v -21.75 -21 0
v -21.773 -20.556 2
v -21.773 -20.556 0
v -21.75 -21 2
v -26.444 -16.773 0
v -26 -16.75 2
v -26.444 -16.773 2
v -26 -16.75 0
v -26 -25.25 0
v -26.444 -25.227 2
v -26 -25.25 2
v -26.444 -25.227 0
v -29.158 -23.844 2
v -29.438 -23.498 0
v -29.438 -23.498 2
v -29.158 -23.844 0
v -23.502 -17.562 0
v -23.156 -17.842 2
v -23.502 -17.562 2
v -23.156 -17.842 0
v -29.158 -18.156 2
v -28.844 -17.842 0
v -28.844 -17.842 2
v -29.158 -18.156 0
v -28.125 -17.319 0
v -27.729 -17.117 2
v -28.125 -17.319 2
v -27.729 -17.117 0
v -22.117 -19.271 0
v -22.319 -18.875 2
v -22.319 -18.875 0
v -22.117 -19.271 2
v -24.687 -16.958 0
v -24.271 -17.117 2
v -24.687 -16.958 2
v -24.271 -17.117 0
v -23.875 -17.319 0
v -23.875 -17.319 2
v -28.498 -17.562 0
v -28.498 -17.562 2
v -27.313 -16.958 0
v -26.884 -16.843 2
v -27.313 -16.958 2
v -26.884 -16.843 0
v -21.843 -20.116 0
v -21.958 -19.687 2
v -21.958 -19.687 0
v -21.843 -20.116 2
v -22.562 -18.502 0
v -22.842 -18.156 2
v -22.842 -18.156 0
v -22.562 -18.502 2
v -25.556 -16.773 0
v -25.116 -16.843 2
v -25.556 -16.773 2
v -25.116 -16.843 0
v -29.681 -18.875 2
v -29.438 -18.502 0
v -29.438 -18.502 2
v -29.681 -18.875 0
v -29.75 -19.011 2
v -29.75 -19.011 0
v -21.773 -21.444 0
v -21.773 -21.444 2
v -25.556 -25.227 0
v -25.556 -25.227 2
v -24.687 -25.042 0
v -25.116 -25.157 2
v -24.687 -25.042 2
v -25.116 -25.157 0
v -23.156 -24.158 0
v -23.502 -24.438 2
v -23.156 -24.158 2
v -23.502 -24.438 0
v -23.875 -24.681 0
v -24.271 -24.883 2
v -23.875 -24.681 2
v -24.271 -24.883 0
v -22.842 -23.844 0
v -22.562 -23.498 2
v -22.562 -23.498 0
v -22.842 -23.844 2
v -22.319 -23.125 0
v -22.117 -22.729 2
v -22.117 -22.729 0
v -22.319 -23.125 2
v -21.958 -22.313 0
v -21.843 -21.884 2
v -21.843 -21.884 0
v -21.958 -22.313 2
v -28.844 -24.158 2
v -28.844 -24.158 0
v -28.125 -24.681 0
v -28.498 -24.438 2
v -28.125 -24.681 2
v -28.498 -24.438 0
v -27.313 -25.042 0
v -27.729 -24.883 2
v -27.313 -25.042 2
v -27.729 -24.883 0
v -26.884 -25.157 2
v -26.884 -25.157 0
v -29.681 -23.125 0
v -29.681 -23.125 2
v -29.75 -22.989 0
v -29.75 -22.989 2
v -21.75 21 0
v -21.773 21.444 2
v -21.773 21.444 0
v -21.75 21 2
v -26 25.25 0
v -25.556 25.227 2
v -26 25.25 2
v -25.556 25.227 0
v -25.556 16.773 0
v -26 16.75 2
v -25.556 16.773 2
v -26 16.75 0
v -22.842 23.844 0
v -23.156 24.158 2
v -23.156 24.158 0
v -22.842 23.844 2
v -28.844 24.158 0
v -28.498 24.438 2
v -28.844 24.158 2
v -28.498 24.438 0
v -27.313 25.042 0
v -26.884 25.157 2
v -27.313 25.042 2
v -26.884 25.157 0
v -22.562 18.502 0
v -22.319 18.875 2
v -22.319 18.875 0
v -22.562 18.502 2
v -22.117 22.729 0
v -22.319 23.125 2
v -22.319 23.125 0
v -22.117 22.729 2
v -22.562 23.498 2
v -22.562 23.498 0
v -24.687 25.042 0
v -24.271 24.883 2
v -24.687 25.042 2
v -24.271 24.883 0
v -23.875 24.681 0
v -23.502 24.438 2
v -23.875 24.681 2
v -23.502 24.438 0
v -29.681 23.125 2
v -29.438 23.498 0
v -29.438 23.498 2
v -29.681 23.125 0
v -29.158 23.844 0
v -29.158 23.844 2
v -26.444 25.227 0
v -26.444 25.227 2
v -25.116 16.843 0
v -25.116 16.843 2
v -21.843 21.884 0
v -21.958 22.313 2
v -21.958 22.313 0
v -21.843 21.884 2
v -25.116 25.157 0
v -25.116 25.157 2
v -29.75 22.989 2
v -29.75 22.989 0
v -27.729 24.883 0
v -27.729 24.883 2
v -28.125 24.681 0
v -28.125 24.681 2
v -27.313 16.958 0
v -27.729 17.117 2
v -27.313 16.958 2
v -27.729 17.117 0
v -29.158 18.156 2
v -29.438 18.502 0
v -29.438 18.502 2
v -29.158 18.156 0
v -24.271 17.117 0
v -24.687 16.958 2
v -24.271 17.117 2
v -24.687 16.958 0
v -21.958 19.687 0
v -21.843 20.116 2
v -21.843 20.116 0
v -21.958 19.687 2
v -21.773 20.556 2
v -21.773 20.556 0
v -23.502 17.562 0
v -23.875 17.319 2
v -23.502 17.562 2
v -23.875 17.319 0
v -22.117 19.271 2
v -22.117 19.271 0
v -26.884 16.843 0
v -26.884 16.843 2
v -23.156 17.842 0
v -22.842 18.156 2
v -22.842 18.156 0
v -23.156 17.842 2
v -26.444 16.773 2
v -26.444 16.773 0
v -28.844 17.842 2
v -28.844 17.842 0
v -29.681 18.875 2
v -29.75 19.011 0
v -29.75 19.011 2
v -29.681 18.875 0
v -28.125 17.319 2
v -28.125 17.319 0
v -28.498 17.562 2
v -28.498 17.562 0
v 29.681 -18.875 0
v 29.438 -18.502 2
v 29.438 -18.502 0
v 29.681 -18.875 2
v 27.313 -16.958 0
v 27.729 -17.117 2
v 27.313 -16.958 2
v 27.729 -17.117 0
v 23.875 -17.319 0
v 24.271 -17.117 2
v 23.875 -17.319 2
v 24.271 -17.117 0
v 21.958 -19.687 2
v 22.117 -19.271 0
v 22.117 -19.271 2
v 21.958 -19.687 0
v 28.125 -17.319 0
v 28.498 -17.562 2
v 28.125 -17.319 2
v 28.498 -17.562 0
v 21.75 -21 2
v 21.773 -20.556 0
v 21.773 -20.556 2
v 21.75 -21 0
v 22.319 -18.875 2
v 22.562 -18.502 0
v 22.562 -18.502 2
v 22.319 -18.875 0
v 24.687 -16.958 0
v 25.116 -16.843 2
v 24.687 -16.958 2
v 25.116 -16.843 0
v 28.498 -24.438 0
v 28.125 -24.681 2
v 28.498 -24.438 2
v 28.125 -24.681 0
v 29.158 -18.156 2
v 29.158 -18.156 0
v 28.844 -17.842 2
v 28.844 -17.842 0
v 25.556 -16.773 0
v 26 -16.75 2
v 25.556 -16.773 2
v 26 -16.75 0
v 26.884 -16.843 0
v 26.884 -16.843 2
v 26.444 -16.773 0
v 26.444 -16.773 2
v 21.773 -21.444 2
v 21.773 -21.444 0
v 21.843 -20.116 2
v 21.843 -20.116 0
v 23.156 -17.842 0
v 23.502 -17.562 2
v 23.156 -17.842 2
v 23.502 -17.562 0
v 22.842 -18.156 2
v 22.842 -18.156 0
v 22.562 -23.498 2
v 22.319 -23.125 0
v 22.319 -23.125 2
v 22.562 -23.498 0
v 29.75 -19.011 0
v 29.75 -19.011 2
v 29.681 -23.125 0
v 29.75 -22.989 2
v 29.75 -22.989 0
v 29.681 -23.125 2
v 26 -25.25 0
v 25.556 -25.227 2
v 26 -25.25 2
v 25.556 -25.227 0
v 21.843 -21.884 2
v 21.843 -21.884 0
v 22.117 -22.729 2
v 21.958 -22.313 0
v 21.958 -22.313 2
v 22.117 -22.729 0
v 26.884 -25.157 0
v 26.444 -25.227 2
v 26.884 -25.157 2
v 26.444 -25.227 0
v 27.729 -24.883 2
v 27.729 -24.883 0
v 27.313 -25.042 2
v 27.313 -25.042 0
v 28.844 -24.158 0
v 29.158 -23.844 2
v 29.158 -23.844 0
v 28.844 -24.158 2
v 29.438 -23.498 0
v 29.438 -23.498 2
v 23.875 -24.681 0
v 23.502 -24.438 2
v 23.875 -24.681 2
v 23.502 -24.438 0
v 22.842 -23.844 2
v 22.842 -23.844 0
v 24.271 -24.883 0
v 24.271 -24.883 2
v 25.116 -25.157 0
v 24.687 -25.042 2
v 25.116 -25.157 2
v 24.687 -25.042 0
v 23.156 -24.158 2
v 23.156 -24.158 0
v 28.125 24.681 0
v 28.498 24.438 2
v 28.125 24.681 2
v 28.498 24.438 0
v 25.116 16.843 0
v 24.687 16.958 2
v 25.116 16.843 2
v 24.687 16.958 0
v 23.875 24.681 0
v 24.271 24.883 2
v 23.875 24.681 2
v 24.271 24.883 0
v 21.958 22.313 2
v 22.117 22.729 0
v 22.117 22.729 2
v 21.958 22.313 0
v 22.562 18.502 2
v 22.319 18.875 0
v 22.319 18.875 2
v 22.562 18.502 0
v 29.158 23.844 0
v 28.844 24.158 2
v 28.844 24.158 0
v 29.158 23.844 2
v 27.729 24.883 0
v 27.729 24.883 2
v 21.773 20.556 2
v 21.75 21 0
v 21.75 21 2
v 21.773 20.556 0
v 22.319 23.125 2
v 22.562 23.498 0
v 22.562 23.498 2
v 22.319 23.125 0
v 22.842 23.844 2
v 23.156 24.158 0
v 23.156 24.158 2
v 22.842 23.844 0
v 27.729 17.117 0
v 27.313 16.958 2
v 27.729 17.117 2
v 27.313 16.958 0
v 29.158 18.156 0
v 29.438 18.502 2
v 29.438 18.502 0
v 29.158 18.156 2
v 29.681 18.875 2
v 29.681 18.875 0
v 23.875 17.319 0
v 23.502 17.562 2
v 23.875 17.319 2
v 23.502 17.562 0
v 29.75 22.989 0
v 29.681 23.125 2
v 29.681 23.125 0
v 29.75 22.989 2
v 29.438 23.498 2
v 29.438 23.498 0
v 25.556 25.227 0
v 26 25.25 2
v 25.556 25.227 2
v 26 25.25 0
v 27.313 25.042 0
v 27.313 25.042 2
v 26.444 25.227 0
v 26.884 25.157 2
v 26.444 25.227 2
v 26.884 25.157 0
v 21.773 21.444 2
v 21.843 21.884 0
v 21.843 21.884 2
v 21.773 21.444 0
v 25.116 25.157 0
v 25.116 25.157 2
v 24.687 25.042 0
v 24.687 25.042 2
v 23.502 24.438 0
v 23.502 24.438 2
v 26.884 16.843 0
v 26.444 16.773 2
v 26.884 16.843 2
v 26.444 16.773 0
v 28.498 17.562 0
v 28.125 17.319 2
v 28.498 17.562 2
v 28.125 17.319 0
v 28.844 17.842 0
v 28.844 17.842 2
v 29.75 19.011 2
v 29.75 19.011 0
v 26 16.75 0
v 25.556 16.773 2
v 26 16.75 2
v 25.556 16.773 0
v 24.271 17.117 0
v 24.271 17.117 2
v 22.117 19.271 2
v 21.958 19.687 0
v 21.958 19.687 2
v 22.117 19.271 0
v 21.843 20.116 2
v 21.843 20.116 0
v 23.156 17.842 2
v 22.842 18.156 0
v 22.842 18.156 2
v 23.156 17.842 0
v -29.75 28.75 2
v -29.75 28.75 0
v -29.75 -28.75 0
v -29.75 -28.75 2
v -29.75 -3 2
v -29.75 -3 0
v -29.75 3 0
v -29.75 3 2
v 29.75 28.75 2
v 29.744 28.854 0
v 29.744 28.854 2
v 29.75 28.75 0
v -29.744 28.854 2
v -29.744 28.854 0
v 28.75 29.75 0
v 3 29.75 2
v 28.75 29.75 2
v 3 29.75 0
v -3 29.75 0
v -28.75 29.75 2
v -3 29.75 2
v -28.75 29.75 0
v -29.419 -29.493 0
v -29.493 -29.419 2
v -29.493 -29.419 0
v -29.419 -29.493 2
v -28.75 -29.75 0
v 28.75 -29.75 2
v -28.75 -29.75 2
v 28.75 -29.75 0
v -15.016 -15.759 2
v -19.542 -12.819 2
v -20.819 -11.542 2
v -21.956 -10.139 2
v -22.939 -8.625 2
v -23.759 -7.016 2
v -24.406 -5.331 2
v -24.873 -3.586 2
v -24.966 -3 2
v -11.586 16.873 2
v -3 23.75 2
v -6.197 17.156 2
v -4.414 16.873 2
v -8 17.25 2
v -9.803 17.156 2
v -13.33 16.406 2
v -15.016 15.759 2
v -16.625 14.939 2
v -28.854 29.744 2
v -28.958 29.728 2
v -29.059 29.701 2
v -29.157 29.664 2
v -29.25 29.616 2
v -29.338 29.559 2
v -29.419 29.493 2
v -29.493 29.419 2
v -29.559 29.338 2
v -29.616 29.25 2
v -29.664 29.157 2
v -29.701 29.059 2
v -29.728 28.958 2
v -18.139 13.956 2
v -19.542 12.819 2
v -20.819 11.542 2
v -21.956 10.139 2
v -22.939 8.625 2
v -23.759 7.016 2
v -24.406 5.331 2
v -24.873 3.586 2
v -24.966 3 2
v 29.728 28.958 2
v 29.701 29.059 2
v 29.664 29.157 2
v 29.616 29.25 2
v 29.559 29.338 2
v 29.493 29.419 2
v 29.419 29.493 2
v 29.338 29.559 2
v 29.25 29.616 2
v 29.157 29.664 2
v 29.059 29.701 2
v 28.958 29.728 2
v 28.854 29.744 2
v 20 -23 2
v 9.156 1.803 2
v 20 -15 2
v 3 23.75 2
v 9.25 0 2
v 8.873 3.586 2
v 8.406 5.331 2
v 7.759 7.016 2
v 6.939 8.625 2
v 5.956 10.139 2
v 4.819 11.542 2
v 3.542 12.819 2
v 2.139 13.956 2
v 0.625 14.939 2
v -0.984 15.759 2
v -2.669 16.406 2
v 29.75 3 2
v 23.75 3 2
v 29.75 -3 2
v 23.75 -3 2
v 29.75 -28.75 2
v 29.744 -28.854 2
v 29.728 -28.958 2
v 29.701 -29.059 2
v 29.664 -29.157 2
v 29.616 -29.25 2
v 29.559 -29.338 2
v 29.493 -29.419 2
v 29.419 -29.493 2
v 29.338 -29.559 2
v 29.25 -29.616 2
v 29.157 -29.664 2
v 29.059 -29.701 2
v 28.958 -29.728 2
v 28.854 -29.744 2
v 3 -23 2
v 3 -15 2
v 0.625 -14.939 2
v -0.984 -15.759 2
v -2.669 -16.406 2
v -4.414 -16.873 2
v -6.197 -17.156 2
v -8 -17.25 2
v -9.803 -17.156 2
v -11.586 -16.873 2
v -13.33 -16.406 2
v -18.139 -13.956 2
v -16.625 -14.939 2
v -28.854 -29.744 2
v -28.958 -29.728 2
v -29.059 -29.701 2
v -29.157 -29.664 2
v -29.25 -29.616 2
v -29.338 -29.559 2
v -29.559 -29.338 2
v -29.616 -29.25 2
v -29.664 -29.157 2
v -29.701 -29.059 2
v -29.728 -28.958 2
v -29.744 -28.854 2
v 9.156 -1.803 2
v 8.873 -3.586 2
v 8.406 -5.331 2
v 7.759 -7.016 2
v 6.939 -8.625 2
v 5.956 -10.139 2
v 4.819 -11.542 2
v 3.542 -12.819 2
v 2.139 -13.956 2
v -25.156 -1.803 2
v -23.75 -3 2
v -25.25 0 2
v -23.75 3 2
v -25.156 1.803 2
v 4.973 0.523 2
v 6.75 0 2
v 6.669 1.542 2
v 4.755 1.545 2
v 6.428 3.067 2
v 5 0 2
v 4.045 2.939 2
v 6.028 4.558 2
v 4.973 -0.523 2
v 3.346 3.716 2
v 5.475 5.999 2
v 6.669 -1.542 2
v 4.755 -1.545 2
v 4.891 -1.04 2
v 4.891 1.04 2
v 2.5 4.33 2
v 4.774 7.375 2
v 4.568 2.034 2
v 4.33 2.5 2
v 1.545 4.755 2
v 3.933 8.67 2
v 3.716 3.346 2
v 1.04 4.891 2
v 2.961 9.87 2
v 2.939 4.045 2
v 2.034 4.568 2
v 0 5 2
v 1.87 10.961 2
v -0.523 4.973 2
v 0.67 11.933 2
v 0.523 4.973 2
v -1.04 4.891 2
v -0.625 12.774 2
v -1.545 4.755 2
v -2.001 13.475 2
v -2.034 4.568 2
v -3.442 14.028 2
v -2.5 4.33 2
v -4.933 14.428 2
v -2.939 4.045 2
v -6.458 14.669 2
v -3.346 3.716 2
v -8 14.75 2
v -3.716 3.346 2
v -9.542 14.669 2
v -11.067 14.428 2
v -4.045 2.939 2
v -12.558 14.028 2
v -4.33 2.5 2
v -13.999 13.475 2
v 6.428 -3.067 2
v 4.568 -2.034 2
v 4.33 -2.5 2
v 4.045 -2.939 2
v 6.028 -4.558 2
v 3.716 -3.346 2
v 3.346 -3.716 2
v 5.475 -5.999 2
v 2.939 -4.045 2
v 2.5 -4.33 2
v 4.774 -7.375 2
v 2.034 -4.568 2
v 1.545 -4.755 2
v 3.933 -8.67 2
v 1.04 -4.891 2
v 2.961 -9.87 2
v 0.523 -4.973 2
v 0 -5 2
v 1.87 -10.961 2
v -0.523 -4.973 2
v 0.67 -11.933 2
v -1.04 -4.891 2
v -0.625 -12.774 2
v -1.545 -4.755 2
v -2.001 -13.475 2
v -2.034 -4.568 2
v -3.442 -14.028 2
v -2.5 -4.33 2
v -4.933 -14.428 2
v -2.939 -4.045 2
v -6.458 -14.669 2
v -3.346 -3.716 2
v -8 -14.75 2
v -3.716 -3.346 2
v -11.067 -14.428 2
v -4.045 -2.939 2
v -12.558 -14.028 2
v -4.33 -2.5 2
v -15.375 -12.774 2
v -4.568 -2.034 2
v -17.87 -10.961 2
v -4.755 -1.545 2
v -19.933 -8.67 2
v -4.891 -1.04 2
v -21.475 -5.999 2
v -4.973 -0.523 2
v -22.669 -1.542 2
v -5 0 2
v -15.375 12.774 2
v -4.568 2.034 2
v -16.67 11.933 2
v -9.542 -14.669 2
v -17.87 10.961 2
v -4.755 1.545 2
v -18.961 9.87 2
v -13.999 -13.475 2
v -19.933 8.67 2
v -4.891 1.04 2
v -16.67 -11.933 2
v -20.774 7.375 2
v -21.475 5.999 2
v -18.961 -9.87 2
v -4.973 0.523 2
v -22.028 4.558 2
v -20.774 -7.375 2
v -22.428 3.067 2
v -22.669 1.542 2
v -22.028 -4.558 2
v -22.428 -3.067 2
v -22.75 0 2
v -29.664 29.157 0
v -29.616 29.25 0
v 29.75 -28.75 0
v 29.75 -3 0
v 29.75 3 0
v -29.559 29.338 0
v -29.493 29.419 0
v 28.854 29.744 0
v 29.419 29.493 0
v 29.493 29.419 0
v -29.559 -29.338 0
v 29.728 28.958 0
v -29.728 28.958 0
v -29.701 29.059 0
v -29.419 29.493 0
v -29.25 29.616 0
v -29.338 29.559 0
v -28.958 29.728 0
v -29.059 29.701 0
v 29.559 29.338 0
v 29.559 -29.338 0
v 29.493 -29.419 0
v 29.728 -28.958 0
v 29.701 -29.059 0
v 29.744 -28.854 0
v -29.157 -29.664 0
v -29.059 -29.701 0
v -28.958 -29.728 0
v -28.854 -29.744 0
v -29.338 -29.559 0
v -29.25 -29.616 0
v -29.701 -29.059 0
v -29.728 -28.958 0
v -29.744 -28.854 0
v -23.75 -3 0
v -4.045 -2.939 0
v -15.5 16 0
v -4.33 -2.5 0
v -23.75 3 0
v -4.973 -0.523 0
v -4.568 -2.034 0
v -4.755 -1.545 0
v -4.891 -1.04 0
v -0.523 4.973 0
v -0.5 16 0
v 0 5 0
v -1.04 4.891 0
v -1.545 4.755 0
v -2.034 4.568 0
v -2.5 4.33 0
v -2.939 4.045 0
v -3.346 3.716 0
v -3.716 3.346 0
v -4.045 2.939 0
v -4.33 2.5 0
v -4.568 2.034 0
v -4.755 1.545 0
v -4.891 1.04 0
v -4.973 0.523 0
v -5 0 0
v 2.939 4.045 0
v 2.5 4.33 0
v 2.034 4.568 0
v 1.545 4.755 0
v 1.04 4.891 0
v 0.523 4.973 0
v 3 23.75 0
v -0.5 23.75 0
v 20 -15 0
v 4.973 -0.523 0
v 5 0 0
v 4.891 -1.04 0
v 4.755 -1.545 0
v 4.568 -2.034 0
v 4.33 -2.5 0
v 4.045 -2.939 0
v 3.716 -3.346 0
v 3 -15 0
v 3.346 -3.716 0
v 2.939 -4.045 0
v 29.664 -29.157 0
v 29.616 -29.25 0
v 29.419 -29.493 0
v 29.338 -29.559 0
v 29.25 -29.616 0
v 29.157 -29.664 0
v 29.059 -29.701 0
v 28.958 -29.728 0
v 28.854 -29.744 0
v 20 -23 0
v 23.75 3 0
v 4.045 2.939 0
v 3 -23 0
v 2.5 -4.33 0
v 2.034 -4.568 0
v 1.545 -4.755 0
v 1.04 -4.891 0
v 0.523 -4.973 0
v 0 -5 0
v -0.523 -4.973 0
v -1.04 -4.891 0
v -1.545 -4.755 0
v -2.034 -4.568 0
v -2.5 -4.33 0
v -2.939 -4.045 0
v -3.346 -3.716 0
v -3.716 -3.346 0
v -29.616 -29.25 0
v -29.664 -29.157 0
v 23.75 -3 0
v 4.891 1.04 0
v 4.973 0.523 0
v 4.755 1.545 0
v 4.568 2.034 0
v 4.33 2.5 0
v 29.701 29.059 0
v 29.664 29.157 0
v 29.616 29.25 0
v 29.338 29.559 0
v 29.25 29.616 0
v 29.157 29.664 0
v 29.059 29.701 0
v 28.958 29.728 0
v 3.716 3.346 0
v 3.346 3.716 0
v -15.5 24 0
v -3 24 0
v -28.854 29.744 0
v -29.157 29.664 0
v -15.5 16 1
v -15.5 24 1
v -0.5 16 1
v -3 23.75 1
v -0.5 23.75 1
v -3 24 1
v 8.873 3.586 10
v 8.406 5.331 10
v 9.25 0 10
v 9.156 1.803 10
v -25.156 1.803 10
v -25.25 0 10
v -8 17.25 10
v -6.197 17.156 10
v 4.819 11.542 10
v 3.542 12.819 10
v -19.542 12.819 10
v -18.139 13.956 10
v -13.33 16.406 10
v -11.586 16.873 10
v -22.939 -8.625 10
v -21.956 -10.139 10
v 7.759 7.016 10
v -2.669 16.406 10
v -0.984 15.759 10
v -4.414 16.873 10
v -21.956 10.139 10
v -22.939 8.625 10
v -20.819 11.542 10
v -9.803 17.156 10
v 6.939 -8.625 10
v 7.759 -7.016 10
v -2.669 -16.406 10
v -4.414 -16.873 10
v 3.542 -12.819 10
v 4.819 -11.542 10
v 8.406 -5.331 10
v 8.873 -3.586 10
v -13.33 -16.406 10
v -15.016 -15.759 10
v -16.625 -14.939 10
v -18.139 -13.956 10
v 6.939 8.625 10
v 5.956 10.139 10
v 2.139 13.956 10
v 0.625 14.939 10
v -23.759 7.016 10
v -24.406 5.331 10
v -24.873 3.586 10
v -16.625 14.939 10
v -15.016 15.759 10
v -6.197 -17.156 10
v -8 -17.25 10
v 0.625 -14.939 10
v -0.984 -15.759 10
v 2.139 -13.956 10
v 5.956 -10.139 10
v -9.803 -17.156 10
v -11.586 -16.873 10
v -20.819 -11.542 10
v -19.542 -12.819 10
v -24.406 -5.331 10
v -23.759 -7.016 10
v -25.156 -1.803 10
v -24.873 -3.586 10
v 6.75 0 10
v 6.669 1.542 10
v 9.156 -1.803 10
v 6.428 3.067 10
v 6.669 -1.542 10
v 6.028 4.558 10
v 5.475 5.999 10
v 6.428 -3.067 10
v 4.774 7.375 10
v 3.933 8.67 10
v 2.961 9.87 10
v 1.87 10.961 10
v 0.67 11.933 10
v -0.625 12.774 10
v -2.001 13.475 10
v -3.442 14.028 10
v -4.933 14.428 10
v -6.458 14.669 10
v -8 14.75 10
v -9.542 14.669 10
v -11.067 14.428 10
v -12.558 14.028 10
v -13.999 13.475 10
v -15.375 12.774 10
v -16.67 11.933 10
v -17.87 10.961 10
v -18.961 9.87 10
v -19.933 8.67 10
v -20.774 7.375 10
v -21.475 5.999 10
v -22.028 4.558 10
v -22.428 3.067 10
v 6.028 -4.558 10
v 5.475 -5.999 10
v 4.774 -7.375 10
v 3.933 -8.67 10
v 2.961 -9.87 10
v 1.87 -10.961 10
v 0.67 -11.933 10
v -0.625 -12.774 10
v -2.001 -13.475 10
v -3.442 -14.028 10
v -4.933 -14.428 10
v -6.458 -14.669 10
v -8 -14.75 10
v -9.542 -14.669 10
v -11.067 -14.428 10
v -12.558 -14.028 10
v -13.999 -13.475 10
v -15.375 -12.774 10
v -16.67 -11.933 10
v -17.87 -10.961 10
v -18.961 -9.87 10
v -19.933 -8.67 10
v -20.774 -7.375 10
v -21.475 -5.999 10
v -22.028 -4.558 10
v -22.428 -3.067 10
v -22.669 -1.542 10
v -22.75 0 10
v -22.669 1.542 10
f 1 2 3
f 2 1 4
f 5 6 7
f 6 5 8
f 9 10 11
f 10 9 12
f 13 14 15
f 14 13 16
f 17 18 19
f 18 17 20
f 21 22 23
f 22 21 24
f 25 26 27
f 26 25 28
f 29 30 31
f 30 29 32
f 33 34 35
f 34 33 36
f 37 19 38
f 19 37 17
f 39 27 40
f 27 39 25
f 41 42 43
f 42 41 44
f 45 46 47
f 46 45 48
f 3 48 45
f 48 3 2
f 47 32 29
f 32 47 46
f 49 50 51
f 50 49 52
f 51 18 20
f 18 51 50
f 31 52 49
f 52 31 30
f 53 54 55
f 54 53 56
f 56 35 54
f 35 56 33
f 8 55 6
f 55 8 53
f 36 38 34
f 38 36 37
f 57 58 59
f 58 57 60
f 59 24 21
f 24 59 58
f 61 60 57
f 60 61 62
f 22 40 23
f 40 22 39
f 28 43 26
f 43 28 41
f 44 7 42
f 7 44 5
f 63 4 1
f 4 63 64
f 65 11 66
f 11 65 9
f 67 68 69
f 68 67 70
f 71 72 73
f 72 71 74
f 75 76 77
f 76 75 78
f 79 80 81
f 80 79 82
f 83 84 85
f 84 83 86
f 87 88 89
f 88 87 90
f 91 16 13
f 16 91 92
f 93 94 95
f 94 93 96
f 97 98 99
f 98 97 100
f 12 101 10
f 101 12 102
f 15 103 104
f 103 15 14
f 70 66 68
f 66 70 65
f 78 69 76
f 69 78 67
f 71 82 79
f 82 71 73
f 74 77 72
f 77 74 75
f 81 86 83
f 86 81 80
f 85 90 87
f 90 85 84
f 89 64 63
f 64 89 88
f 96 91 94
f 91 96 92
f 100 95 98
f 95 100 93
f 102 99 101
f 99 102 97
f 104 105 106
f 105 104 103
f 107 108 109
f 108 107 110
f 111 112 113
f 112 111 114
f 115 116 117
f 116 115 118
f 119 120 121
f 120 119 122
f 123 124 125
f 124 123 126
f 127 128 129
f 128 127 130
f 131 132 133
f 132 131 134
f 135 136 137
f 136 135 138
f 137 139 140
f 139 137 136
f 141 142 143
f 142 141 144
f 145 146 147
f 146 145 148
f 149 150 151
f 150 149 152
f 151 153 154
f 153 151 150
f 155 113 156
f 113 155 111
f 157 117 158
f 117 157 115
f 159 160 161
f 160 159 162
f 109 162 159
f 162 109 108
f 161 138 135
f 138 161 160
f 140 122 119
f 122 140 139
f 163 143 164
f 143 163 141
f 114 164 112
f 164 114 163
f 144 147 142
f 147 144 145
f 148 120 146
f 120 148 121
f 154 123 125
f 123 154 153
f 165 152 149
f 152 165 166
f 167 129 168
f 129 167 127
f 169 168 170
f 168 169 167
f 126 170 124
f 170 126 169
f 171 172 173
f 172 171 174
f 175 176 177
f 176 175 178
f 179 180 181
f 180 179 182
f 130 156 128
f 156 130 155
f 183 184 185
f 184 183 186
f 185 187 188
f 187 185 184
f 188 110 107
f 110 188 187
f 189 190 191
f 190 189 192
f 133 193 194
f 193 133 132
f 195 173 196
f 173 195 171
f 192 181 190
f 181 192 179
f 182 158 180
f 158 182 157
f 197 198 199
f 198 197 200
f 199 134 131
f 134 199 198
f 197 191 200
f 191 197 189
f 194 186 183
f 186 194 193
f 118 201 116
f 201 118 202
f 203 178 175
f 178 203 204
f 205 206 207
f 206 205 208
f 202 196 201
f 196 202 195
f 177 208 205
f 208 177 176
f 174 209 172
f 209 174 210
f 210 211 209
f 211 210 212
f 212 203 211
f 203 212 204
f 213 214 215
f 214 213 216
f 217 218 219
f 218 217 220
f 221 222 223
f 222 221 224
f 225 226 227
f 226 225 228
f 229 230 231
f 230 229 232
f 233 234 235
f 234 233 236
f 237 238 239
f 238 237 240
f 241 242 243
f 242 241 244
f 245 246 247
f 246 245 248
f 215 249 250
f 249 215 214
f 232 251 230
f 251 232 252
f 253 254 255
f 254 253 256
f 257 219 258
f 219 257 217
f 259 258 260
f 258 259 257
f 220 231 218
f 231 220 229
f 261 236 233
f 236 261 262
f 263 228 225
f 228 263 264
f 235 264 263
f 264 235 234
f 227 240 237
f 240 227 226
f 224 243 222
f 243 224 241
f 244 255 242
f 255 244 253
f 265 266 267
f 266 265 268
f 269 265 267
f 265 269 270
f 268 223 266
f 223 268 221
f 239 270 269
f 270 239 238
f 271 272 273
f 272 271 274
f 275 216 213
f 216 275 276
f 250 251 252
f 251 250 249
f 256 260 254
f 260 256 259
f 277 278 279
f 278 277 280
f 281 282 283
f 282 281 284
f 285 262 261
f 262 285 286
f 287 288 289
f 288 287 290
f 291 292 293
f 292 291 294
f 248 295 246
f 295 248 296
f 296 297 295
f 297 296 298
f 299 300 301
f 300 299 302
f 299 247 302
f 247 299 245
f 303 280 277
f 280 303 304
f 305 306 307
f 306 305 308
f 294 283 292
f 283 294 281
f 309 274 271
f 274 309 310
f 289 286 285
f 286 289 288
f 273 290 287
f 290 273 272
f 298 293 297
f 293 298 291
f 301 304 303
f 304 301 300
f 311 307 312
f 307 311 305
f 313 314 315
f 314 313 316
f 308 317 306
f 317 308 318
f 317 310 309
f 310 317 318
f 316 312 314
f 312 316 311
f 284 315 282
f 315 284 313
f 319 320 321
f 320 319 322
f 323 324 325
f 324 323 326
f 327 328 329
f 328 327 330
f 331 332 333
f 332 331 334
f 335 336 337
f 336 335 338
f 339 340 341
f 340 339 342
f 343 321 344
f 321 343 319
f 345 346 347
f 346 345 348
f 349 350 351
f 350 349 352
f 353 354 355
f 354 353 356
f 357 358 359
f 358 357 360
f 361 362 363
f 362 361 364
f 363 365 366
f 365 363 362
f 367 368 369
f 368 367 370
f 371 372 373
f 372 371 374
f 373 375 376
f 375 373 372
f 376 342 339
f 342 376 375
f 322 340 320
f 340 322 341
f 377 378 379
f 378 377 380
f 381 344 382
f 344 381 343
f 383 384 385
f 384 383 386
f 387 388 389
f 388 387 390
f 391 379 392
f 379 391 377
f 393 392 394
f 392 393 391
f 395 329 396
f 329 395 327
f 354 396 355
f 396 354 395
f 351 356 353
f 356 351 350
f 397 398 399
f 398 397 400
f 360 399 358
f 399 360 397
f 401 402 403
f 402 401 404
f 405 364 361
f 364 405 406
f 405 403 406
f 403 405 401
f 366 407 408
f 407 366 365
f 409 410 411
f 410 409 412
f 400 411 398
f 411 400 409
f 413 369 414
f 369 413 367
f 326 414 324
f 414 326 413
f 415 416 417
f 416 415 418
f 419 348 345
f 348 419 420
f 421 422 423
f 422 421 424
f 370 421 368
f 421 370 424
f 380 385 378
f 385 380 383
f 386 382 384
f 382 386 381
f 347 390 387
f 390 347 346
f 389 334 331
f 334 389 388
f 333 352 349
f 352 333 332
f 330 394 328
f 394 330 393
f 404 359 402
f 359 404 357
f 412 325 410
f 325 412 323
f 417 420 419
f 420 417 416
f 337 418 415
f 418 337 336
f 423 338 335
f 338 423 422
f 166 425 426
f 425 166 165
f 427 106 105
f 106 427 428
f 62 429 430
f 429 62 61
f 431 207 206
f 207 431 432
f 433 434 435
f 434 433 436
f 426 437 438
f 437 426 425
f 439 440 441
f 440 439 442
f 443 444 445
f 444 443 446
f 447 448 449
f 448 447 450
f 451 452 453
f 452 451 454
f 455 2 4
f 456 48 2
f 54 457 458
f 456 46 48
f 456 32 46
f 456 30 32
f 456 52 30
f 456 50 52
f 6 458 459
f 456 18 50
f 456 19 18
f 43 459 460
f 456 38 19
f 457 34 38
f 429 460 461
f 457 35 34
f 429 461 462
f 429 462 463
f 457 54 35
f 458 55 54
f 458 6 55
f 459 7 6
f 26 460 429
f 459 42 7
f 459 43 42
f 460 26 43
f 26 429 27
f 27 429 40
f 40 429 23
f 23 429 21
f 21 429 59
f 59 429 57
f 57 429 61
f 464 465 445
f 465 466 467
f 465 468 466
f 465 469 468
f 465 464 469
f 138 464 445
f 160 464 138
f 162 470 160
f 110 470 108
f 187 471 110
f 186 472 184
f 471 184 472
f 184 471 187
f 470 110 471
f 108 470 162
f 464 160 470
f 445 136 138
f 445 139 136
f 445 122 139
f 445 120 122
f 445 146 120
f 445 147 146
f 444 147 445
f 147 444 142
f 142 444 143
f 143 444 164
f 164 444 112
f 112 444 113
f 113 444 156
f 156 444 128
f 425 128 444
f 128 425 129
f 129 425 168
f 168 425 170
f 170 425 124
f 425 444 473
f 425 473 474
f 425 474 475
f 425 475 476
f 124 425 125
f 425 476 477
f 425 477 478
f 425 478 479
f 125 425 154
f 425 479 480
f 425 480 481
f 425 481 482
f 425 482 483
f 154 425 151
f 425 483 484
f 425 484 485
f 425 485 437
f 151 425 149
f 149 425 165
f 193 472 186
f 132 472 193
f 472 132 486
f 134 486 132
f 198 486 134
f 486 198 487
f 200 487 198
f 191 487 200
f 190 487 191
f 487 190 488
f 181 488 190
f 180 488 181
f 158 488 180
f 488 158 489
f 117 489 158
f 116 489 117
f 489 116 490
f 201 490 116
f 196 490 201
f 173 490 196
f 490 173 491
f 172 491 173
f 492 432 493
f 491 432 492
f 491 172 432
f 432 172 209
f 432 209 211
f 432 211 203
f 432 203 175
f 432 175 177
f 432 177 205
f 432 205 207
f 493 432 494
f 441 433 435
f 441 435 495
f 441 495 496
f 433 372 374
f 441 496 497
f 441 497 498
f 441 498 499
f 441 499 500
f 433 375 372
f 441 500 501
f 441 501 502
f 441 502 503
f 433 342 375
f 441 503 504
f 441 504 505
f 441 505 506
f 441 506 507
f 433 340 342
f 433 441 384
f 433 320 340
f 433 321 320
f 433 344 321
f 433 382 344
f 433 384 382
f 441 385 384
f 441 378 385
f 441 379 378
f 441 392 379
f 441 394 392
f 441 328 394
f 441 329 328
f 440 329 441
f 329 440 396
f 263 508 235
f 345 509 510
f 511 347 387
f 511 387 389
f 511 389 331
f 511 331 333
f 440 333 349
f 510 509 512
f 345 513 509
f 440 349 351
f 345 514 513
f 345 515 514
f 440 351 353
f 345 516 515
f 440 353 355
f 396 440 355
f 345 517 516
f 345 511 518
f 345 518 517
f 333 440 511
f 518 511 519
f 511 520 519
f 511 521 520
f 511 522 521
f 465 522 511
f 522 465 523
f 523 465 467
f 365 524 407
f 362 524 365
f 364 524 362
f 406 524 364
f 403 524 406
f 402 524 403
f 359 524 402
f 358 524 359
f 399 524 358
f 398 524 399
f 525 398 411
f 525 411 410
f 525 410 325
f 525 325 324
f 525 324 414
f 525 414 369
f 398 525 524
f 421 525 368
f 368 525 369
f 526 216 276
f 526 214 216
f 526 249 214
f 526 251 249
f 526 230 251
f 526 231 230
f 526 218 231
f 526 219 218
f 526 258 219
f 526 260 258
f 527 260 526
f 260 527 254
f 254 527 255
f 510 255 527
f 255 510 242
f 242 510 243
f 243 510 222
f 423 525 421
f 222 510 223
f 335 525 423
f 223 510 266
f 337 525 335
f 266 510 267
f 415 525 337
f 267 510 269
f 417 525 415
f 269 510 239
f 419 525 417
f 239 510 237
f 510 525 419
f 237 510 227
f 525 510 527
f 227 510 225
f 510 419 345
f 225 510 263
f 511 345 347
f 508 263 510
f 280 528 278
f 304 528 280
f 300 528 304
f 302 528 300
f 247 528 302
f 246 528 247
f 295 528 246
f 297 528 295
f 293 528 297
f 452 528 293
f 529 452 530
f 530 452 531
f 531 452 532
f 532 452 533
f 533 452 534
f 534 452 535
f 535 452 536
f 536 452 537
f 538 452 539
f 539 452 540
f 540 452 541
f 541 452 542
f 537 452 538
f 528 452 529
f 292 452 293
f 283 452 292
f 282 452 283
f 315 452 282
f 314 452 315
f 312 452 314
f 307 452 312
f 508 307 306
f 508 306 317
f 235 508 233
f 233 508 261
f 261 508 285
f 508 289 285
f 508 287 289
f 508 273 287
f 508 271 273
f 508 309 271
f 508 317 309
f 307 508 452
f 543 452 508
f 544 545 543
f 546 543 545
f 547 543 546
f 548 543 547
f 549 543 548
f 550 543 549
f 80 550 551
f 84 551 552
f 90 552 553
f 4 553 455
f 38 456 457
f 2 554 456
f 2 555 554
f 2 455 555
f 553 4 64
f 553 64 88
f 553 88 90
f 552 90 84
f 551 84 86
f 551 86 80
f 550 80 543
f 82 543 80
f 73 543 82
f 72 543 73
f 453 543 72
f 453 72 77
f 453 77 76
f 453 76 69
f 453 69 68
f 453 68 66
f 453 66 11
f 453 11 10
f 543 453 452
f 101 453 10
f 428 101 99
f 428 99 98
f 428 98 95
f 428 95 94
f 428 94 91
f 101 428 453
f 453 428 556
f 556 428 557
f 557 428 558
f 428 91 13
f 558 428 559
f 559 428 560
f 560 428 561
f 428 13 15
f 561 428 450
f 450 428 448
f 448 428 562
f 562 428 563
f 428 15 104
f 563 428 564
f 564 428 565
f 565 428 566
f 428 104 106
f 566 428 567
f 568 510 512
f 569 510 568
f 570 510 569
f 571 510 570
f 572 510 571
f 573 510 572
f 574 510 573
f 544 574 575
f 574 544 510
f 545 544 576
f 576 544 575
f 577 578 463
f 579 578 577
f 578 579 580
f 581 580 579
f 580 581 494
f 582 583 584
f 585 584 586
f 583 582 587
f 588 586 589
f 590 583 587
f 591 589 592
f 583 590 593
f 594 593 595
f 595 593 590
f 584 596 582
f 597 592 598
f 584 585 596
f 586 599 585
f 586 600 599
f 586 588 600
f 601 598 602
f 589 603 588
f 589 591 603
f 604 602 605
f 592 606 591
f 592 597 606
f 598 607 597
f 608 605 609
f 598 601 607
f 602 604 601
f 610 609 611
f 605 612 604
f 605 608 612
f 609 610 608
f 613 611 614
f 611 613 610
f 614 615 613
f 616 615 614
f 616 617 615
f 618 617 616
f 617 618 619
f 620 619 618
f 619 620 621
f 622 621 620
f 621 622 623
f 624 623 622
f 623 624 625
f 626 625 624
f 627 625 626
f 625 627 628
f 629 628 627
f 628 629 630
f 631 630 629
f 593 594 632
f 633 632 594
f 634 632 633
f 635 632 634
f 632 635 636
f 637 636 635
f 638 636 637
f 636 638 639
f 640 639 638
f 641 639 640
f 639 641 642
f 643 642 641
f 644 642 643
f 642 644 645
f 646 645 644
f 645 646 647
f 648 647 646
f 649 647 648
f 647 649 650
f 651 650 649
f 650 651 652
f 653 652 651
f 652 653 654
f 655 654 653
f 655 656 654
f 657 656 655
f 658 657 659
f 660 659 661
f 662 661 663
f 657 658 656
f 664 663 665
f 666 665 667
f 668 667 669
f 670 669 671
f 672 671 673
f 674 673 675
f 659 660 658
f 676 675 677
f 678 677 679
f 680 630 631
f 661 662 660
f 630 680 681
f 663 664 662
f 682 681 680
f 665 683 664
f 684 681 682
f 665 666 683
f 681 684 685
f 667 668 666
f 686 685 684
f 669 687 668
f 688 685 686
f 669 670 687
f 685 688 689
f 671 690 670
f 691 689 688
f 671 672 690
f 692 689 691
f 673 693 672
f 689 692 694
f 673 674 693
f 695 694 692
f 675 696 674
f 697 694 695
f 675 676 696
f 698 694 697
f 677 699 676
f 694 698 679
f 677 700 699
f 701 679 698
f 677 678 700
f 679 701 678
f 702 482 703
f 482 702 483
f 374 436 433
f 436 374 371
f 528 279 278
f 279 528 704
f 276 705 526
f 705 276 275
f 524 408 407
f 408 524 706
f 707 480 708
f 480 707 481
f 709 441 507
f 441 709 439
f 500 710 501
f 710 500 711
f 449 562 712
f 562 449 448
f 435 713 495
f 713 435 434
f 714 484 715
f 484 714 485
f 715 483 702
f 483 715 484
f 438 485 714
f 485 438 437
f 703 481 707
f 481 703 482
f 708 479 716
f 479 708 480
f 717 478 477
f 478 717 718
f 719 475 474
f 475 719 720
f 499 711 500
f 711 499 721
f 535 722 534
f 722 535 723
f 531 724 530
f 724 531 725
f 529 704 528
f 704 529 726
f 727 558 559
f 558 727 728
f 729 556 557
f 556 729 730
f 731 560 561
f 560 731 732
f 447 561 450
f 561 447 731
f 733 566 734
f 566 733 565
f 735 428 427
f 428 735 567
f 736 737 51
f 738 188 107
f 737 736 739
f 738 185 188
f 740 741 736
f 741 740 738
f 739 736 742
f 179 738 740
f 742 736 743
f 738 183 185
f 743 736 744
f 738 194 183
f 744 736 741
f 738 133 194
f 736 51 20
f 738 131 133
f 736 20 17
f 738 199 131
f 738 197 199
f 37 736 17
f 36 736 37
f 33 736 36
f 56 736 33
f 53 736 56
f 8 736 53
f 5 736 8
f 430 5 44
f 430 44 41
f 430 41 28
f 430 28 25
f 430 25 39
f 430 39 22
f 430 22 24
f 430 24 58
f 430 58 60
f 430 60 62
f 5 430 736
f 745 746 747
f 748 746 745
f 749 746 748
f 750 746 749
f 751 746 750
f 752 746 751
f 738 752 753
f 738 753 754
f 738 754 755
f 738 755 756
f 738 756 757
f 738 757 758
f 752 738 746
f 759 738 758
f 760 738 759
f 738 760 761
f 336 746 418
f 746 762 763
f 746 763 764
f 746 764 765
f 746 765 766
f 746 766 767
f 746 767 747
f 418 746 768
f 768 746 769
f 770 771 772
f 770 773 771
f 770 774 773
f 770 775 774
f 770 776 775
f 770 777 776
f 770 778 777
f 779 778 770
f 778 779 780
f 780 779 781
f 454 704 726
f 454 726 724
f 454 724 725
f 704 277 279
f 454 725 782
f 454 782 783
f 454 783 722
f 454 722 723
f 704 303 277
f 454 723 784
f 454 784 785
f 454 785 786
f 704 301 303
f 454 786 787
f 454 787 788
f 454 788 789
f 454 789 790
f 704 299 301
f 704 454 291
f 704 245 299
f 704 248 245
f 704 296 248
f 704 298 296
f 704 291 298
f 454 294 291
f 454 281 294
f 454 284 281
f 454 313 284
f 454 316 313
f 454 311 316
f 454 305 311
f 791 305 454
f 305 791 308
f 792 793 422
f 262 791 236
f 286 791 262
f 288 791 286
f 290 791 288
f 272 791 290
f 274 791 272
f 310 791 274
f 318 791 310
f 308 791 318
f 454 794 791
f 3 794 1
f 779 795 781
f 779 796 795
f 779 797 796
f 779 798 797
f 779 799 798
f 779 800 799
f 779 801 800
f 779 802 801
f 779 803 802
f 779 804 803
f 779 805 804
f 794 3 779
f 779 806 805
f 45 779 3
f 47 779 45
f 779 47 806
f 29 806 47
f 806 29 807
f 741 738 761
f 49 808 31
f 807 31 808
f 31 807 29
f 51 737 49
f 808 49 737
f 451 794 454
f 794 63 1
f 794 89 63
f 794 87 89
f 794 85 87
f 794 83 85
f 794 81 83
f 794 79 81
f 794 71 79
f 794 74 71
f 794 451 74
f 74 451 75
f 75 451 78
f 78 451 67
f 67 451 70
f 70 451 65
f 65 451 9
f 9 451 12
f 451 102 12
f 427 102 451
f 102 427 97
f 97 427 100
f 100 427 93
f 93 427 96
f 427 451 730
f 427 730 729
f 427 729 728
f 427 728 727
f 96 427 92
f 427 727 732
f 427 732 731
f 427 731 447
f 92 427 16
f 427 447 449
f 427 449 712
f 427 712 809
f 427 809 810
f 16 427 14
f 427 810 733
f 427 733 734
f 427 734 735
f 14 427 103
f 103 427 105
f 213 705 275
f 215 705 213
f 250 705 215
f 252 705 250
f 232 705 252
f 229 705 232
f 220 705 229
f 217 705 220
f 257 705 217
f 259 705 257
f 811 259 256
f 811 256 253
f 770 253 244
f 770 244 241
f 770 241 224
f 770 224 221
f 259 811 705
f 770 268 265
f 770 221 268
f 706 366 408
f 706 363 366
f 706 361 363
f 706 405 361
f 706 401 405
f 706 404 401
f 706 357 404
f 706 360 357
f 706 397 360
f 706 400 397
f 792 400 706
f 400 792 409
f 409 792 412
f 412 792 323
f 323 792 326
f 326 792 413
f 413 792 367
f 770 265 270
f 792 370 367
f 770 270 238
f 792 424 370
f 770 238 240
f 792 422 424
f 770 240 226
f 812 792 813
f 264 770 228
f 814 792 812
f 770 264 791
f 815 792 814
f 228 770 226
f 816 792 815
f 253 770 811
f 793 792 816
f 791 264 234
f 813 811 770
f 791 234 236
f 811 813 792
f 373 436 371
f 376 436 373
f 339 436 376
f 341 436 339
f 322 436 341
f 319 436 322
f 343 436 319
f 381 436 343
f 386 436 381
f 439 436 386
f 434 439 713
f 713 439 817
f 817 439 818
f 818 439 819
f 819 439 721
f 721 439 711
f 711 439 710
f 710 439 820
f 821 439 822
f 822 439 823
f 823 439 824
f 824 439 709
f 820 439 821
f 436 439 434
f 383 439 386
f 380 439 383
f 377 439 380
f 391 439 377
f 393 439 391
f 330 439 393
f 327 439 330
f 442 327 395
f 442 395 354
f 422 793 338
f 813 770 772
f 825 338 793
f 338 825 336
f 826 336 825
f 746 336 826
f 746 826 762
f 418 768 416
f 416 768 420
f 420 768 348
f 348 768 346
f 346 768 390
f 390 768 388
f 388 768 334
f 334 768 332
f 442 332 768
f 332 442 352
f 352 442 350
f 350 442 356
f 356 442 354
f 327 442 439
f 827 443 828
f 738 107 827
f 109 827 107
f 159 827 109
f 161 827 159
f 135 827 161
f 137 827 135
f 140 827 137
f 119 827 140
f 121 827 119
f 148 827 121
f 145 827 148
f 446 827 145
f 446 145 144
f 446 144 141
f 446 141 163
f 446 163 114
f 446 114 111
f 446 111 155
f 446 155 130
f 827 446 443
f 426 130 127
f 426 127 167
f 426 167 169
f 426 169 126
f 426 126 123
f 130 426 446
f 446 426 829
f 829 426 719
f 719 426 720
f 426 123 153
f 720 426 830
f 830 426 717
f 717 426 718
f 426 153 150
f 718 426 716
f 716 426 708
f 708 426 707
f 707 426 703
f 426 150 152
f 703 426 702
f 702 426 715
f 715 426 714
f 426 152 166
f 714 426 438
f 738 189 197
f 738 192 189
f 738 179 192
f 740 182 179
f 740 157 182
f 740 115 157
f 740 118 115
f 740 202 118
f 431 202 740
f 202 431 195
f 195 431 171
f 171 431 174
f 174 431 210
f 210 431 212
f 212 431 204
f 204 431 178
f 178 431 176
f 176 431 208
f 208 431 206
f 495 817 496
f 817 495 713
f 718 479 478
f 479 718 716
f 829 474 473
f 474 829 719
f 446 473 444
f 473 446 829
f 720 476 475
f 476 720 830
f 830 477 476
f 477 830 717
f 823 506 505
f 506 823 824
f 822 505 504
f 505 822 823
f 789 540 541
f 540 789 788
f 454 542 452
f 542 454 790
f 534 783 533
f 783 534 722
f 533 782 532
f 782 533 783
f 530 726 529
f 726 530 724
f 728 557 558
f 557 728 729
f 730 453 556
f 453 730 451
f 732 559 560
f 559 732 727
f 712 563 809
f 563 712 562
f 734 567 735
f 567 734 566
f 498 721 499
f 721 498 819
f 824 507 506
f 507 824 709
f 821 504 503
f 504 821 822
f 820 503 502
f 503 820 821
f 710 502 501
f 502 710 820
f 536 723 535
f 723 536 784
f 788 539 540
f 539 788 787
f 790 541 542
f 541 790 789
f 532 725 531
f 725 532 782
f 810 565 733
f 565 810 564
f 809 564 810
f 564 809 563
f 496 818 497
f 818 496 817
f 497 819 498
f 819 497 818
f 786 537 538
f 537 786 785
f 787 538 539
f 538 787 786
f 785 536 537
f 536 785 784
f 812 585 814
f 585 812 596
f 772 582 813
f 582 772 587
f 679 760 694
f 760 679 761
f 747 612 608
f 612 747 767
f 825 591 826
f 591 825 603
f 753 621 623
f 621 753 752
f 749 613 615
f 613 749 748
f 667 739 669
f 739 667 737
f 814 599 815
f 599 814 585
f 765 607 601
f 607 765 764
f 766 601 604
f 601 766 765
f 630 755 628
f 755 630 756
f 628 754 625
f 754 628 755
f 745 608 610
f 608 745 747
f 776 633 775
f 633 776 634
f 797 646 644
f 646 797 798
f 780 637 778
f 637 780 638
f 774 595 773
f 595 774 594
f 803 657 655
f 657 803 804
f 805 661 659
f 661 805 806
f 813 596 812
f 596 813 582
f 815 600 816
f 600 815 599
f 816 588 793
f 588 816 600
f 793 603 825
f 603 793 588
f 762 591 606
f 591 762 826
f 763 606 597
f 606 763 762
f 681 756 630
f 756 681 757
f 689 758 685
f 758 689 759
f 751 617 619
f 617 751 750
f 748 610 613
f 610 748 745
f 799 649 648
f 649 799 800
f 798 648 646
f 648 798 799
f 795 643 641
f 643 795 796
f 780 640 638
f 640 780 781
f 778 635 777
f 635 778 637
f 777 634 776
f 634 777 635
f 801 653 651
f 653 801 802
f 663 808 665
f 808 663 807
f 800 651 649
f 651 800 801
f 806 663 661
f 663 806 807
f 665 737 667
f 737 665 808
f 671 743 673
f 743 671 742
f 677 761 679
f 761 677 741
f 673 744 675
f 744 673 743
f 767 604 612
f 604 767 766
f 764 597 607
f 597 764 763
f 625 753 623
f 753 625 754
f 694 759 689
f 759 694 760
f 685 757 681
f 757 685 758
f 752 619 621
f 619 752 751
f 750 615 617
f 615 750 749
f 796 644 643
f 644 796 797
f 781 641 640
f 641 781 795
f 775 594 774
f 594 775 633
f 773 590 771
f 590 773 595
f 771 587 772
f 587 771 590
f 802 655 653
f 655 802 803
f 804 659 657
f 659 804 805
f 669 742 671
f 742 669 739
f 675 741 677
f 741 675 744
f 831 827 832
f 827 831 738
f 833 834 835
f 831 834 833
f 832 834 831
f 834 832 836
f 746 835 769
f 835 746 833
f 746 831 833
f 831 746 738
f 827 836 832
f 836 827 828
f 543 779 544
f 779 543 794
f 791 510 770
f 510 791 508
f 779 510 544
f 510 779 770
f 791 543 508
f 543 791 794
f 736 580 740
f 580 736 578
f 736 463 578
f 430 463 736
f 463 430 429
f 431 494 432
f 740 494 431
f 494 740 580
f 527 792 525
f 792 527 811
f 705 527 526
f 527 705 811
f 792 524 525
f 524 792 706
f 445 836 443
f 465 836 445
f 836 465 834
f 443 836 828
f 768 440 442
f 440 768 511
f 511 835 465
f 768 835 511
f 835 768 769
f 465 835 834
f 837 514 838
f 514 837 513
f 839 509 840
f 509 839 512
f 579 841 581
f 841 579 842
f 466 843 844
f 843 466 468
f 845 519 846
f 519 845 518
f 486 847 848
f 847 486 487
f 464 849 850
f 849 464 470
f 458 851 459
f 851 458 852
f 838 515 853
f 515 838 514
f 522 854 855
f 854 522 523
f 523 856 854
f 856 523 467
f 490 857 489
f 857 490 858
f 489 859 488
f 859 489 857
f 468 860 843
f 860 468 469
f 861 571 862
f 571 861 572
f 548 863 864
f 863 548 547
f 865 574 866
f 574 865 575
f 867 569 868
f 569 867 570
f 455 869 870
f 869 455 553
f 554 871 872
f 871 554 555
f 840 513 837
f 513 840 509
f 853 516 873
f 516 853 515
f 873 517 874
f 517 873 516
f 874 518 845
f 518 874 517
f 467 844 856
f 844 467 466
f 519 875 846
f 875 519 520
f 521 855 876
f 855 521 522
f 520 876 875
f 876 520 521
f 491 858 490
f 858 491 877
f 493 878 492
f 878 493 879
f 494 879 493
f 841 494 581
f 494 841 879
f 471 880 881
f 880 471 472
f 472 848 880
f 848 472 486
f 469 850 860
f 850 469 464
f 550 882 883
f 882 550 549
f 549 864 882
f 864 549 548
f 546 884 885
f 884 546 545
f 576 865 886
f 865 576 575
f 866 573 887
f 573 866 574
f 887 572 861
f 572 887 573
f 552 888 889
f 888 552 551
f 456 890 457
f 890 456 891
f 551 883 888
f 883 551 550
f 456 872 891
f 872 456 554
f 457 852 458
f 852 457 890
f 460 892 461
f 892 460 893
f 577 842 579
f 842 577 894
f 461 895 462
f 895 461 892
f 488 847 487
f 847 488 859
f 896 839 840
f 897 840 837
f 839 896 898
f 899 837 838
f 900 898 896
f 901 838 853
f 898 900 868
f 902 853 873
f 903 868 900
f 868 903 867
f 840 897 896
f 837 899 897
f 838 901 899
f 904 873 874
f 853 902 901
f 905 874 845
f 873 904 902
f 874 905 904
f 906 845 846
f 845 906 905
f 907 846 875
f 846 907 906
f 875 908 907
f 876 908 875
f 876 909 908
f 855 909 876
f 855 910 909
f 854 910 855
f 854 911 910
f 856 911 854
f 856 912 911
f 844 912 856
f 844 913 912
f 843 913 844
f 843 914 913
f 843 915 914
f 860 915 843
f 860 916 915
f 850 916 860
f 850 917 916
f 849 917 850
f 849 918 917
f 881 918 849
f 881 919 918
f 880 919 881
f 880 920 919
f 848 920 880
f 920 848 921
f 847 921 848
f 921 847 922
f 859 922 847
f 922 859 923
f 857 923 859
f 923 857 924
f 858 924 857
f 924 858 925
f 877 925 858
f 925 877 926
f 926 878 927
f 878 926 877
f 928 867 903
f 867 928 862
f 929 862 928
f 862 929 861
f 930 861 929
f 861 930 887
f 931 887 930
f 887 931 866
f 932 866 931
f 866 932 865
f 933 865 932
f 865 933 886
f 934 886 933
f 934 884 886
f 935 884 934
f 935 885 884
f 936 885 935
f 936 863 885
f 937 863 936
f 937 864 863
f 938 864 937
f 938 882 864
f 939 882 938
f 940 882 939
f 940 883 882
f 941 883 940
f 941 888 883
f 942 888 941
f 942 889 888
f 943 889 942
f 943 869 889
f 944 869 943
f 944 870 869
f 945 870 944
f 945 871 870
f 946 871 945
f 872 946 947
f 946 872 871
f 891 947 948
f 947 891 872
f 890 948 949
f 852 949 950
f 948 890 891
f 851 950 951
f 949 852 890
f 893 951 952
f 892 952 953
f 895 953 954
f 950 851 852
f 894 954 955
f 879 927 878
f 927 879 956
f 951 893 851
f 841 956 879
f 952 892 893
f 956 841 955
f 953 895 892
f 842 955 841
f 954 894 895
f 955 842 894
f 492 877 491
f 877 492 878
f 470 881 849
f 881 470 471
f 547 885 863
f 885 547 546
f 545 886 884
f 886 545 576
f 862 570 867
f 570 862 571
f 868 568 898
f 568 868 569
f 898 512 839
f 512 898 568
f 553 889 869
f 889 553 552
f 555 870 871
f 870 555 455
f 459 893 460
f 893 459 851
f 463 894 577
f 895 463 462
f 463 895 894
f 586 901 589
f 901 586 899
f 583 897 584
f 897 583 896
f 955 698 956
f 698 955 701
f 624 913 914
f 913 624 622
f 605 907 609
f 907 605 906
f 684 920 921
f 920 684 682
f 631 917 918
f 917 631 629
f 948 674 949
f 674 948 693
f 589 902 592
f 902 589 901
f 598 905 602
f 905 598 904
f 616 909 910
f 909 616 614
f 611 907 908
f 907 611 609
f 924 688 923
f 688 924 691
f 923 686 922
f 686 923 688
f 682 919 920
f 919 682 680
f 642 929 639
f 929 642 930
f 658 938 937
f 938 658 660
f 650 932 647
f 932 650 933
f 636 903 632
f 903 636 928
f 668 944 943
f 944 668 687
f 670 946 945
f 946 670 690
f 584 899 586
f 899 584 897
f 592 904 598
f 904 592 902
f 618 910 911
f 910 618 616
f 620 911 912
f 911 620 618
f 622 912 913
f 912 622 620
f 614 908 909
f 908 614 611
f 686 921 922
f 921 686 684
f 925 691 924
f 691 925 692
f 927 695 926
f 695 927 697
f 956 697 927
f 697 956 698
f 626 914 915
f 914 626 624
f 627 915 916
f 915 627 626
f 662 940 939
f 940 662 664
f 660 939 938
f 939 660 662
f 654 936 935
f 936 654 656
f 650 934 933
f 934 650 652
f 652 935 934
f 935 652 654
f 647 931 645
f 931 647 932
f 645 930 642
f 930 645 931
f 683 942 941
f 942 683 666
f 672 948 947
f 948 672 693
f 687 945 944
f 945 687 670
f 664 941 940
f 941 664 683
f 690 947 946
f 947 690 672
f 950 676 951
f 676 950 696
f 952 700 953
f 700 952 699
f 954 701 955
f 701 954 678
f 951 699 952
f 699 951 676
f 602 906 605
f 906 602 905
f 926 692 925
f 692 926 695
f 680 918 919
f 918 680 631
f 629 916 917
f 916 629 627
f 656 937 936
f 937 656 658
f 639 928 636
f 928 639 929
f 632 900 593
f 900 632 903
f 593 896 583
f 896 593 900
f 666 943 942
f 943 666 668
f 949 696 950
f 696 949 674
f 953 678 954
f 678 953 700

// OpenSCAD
// mid_plate_v1.scad
plate_l = 59.5;
plate_w = 59.5;
plate_h = 2.0;
motor_x_offset = -8;

$fn = 60;

module rounded_rect(l, w, h, r) {
    hull() {
        translate([-l/2 + r, -w/2 + r, 0]) cylinder(r=r, h=h);
        translate([ l/2 - r, -w/2 + r, 0]) cylinder(r=r, h=h);
        translate([-l/2 + r,  w/2 - r, 0]) cylinder(r=r, h=h);
        translate([ l/2 - r,  w/2 - r, 0]) cylinder(r=r, h=h);
    }
}

union() {
    difference() {
        // Base plate body
        rounded_rect(plate_l, plate_w, plate_h, 1.0);

        // Holes to allow the 4 corner bosses to pass through
        for(sx = [-1, 1]) for(sy = [-1, 1]) {
            translate([sx * 26, sy * 21, -1])
                cylinder(d=8.5, h=plate_h + 2);
        }

        // Central hole for motor shaft to pass up to the cam
        translate([0, 0, -1]) cylinder(d=10, h=plate_h + 2);

        // Slot for motor wires to drop down into the electronics bay
        translate([-8, 20, -1]) cube([15, 8, plate_h + 2], center=true);

        // v6.1: ULN2003 connector relief slot. The off-the-shelf driver module measured
        // ~20mm tall as wired vs the 16mm pocket. With wires soldered flat the stack is
        // ~12mm, but the JST socket + plug needs headroom — this through-slot lets the
        // connector corner poke past the plate. Positioned at (+X,-Y) clear of the motor
        // collar (collar max x at y=-15 is x=0.5) and the boss hole at (26,-21).
        // → Orient the ULN2003 with its JST/header edge toward this corner.
        translate([3, -23, -1]) cube([17, 8, plate_h + 2]);

        // Wire pass-through notches: pogo wires drop from z31 into pocket
        // -X edge notch (pogo spring side)
        translate([-plate_l/2, -3, -1]) cube([6, 6, plate_h + 2]);
        // +X edge notch (pogo pad side)
        translate([plate_l/2 - 6, -3, -1]) cube([6, 6, plate_h + 2]);
        // +Y edge notch (hall sensor wires from base plate)
        translate([-3, plate_w/2 - 6, -1]) cube([6, 6, plate_h + 2]);
    }
    
    // Motor Retaining Collar (Centered at X=-8)
    // Audit 2 fix (2026-05-15): added boss relief notches — collar at x=-8 with r=17.25mm
    // was crashing into corner bosses at (-15, +-15), distance=16.55mm < 17.25mm
    // >>> collar ID is BLOCKED ON MEASUREMENT (M1) — 29.5 assumes a Ø28 can. <<<
    // If the real can is bigger the motor will not drop into this collar at all.
    translate([motor_x_offset, 0, plate_h]) difference() {
        cylinder(d=34.5, h=8); // 8mm tall collar
        translate([0,0,-1]) cylinder(d=29.5, h=10); // MEASURE (M1): can Ø + 1.5mm
        // Boss relief notches for the two -X corner bosses
        for(sy = [-1, 1])
            translate([-26 - motor_x_offset, sy * 21, -1])
                cylinder(d=9, h=10, $fn=40);  // 9mm clears 8mm boss + 0.5mm/side
    }
}
